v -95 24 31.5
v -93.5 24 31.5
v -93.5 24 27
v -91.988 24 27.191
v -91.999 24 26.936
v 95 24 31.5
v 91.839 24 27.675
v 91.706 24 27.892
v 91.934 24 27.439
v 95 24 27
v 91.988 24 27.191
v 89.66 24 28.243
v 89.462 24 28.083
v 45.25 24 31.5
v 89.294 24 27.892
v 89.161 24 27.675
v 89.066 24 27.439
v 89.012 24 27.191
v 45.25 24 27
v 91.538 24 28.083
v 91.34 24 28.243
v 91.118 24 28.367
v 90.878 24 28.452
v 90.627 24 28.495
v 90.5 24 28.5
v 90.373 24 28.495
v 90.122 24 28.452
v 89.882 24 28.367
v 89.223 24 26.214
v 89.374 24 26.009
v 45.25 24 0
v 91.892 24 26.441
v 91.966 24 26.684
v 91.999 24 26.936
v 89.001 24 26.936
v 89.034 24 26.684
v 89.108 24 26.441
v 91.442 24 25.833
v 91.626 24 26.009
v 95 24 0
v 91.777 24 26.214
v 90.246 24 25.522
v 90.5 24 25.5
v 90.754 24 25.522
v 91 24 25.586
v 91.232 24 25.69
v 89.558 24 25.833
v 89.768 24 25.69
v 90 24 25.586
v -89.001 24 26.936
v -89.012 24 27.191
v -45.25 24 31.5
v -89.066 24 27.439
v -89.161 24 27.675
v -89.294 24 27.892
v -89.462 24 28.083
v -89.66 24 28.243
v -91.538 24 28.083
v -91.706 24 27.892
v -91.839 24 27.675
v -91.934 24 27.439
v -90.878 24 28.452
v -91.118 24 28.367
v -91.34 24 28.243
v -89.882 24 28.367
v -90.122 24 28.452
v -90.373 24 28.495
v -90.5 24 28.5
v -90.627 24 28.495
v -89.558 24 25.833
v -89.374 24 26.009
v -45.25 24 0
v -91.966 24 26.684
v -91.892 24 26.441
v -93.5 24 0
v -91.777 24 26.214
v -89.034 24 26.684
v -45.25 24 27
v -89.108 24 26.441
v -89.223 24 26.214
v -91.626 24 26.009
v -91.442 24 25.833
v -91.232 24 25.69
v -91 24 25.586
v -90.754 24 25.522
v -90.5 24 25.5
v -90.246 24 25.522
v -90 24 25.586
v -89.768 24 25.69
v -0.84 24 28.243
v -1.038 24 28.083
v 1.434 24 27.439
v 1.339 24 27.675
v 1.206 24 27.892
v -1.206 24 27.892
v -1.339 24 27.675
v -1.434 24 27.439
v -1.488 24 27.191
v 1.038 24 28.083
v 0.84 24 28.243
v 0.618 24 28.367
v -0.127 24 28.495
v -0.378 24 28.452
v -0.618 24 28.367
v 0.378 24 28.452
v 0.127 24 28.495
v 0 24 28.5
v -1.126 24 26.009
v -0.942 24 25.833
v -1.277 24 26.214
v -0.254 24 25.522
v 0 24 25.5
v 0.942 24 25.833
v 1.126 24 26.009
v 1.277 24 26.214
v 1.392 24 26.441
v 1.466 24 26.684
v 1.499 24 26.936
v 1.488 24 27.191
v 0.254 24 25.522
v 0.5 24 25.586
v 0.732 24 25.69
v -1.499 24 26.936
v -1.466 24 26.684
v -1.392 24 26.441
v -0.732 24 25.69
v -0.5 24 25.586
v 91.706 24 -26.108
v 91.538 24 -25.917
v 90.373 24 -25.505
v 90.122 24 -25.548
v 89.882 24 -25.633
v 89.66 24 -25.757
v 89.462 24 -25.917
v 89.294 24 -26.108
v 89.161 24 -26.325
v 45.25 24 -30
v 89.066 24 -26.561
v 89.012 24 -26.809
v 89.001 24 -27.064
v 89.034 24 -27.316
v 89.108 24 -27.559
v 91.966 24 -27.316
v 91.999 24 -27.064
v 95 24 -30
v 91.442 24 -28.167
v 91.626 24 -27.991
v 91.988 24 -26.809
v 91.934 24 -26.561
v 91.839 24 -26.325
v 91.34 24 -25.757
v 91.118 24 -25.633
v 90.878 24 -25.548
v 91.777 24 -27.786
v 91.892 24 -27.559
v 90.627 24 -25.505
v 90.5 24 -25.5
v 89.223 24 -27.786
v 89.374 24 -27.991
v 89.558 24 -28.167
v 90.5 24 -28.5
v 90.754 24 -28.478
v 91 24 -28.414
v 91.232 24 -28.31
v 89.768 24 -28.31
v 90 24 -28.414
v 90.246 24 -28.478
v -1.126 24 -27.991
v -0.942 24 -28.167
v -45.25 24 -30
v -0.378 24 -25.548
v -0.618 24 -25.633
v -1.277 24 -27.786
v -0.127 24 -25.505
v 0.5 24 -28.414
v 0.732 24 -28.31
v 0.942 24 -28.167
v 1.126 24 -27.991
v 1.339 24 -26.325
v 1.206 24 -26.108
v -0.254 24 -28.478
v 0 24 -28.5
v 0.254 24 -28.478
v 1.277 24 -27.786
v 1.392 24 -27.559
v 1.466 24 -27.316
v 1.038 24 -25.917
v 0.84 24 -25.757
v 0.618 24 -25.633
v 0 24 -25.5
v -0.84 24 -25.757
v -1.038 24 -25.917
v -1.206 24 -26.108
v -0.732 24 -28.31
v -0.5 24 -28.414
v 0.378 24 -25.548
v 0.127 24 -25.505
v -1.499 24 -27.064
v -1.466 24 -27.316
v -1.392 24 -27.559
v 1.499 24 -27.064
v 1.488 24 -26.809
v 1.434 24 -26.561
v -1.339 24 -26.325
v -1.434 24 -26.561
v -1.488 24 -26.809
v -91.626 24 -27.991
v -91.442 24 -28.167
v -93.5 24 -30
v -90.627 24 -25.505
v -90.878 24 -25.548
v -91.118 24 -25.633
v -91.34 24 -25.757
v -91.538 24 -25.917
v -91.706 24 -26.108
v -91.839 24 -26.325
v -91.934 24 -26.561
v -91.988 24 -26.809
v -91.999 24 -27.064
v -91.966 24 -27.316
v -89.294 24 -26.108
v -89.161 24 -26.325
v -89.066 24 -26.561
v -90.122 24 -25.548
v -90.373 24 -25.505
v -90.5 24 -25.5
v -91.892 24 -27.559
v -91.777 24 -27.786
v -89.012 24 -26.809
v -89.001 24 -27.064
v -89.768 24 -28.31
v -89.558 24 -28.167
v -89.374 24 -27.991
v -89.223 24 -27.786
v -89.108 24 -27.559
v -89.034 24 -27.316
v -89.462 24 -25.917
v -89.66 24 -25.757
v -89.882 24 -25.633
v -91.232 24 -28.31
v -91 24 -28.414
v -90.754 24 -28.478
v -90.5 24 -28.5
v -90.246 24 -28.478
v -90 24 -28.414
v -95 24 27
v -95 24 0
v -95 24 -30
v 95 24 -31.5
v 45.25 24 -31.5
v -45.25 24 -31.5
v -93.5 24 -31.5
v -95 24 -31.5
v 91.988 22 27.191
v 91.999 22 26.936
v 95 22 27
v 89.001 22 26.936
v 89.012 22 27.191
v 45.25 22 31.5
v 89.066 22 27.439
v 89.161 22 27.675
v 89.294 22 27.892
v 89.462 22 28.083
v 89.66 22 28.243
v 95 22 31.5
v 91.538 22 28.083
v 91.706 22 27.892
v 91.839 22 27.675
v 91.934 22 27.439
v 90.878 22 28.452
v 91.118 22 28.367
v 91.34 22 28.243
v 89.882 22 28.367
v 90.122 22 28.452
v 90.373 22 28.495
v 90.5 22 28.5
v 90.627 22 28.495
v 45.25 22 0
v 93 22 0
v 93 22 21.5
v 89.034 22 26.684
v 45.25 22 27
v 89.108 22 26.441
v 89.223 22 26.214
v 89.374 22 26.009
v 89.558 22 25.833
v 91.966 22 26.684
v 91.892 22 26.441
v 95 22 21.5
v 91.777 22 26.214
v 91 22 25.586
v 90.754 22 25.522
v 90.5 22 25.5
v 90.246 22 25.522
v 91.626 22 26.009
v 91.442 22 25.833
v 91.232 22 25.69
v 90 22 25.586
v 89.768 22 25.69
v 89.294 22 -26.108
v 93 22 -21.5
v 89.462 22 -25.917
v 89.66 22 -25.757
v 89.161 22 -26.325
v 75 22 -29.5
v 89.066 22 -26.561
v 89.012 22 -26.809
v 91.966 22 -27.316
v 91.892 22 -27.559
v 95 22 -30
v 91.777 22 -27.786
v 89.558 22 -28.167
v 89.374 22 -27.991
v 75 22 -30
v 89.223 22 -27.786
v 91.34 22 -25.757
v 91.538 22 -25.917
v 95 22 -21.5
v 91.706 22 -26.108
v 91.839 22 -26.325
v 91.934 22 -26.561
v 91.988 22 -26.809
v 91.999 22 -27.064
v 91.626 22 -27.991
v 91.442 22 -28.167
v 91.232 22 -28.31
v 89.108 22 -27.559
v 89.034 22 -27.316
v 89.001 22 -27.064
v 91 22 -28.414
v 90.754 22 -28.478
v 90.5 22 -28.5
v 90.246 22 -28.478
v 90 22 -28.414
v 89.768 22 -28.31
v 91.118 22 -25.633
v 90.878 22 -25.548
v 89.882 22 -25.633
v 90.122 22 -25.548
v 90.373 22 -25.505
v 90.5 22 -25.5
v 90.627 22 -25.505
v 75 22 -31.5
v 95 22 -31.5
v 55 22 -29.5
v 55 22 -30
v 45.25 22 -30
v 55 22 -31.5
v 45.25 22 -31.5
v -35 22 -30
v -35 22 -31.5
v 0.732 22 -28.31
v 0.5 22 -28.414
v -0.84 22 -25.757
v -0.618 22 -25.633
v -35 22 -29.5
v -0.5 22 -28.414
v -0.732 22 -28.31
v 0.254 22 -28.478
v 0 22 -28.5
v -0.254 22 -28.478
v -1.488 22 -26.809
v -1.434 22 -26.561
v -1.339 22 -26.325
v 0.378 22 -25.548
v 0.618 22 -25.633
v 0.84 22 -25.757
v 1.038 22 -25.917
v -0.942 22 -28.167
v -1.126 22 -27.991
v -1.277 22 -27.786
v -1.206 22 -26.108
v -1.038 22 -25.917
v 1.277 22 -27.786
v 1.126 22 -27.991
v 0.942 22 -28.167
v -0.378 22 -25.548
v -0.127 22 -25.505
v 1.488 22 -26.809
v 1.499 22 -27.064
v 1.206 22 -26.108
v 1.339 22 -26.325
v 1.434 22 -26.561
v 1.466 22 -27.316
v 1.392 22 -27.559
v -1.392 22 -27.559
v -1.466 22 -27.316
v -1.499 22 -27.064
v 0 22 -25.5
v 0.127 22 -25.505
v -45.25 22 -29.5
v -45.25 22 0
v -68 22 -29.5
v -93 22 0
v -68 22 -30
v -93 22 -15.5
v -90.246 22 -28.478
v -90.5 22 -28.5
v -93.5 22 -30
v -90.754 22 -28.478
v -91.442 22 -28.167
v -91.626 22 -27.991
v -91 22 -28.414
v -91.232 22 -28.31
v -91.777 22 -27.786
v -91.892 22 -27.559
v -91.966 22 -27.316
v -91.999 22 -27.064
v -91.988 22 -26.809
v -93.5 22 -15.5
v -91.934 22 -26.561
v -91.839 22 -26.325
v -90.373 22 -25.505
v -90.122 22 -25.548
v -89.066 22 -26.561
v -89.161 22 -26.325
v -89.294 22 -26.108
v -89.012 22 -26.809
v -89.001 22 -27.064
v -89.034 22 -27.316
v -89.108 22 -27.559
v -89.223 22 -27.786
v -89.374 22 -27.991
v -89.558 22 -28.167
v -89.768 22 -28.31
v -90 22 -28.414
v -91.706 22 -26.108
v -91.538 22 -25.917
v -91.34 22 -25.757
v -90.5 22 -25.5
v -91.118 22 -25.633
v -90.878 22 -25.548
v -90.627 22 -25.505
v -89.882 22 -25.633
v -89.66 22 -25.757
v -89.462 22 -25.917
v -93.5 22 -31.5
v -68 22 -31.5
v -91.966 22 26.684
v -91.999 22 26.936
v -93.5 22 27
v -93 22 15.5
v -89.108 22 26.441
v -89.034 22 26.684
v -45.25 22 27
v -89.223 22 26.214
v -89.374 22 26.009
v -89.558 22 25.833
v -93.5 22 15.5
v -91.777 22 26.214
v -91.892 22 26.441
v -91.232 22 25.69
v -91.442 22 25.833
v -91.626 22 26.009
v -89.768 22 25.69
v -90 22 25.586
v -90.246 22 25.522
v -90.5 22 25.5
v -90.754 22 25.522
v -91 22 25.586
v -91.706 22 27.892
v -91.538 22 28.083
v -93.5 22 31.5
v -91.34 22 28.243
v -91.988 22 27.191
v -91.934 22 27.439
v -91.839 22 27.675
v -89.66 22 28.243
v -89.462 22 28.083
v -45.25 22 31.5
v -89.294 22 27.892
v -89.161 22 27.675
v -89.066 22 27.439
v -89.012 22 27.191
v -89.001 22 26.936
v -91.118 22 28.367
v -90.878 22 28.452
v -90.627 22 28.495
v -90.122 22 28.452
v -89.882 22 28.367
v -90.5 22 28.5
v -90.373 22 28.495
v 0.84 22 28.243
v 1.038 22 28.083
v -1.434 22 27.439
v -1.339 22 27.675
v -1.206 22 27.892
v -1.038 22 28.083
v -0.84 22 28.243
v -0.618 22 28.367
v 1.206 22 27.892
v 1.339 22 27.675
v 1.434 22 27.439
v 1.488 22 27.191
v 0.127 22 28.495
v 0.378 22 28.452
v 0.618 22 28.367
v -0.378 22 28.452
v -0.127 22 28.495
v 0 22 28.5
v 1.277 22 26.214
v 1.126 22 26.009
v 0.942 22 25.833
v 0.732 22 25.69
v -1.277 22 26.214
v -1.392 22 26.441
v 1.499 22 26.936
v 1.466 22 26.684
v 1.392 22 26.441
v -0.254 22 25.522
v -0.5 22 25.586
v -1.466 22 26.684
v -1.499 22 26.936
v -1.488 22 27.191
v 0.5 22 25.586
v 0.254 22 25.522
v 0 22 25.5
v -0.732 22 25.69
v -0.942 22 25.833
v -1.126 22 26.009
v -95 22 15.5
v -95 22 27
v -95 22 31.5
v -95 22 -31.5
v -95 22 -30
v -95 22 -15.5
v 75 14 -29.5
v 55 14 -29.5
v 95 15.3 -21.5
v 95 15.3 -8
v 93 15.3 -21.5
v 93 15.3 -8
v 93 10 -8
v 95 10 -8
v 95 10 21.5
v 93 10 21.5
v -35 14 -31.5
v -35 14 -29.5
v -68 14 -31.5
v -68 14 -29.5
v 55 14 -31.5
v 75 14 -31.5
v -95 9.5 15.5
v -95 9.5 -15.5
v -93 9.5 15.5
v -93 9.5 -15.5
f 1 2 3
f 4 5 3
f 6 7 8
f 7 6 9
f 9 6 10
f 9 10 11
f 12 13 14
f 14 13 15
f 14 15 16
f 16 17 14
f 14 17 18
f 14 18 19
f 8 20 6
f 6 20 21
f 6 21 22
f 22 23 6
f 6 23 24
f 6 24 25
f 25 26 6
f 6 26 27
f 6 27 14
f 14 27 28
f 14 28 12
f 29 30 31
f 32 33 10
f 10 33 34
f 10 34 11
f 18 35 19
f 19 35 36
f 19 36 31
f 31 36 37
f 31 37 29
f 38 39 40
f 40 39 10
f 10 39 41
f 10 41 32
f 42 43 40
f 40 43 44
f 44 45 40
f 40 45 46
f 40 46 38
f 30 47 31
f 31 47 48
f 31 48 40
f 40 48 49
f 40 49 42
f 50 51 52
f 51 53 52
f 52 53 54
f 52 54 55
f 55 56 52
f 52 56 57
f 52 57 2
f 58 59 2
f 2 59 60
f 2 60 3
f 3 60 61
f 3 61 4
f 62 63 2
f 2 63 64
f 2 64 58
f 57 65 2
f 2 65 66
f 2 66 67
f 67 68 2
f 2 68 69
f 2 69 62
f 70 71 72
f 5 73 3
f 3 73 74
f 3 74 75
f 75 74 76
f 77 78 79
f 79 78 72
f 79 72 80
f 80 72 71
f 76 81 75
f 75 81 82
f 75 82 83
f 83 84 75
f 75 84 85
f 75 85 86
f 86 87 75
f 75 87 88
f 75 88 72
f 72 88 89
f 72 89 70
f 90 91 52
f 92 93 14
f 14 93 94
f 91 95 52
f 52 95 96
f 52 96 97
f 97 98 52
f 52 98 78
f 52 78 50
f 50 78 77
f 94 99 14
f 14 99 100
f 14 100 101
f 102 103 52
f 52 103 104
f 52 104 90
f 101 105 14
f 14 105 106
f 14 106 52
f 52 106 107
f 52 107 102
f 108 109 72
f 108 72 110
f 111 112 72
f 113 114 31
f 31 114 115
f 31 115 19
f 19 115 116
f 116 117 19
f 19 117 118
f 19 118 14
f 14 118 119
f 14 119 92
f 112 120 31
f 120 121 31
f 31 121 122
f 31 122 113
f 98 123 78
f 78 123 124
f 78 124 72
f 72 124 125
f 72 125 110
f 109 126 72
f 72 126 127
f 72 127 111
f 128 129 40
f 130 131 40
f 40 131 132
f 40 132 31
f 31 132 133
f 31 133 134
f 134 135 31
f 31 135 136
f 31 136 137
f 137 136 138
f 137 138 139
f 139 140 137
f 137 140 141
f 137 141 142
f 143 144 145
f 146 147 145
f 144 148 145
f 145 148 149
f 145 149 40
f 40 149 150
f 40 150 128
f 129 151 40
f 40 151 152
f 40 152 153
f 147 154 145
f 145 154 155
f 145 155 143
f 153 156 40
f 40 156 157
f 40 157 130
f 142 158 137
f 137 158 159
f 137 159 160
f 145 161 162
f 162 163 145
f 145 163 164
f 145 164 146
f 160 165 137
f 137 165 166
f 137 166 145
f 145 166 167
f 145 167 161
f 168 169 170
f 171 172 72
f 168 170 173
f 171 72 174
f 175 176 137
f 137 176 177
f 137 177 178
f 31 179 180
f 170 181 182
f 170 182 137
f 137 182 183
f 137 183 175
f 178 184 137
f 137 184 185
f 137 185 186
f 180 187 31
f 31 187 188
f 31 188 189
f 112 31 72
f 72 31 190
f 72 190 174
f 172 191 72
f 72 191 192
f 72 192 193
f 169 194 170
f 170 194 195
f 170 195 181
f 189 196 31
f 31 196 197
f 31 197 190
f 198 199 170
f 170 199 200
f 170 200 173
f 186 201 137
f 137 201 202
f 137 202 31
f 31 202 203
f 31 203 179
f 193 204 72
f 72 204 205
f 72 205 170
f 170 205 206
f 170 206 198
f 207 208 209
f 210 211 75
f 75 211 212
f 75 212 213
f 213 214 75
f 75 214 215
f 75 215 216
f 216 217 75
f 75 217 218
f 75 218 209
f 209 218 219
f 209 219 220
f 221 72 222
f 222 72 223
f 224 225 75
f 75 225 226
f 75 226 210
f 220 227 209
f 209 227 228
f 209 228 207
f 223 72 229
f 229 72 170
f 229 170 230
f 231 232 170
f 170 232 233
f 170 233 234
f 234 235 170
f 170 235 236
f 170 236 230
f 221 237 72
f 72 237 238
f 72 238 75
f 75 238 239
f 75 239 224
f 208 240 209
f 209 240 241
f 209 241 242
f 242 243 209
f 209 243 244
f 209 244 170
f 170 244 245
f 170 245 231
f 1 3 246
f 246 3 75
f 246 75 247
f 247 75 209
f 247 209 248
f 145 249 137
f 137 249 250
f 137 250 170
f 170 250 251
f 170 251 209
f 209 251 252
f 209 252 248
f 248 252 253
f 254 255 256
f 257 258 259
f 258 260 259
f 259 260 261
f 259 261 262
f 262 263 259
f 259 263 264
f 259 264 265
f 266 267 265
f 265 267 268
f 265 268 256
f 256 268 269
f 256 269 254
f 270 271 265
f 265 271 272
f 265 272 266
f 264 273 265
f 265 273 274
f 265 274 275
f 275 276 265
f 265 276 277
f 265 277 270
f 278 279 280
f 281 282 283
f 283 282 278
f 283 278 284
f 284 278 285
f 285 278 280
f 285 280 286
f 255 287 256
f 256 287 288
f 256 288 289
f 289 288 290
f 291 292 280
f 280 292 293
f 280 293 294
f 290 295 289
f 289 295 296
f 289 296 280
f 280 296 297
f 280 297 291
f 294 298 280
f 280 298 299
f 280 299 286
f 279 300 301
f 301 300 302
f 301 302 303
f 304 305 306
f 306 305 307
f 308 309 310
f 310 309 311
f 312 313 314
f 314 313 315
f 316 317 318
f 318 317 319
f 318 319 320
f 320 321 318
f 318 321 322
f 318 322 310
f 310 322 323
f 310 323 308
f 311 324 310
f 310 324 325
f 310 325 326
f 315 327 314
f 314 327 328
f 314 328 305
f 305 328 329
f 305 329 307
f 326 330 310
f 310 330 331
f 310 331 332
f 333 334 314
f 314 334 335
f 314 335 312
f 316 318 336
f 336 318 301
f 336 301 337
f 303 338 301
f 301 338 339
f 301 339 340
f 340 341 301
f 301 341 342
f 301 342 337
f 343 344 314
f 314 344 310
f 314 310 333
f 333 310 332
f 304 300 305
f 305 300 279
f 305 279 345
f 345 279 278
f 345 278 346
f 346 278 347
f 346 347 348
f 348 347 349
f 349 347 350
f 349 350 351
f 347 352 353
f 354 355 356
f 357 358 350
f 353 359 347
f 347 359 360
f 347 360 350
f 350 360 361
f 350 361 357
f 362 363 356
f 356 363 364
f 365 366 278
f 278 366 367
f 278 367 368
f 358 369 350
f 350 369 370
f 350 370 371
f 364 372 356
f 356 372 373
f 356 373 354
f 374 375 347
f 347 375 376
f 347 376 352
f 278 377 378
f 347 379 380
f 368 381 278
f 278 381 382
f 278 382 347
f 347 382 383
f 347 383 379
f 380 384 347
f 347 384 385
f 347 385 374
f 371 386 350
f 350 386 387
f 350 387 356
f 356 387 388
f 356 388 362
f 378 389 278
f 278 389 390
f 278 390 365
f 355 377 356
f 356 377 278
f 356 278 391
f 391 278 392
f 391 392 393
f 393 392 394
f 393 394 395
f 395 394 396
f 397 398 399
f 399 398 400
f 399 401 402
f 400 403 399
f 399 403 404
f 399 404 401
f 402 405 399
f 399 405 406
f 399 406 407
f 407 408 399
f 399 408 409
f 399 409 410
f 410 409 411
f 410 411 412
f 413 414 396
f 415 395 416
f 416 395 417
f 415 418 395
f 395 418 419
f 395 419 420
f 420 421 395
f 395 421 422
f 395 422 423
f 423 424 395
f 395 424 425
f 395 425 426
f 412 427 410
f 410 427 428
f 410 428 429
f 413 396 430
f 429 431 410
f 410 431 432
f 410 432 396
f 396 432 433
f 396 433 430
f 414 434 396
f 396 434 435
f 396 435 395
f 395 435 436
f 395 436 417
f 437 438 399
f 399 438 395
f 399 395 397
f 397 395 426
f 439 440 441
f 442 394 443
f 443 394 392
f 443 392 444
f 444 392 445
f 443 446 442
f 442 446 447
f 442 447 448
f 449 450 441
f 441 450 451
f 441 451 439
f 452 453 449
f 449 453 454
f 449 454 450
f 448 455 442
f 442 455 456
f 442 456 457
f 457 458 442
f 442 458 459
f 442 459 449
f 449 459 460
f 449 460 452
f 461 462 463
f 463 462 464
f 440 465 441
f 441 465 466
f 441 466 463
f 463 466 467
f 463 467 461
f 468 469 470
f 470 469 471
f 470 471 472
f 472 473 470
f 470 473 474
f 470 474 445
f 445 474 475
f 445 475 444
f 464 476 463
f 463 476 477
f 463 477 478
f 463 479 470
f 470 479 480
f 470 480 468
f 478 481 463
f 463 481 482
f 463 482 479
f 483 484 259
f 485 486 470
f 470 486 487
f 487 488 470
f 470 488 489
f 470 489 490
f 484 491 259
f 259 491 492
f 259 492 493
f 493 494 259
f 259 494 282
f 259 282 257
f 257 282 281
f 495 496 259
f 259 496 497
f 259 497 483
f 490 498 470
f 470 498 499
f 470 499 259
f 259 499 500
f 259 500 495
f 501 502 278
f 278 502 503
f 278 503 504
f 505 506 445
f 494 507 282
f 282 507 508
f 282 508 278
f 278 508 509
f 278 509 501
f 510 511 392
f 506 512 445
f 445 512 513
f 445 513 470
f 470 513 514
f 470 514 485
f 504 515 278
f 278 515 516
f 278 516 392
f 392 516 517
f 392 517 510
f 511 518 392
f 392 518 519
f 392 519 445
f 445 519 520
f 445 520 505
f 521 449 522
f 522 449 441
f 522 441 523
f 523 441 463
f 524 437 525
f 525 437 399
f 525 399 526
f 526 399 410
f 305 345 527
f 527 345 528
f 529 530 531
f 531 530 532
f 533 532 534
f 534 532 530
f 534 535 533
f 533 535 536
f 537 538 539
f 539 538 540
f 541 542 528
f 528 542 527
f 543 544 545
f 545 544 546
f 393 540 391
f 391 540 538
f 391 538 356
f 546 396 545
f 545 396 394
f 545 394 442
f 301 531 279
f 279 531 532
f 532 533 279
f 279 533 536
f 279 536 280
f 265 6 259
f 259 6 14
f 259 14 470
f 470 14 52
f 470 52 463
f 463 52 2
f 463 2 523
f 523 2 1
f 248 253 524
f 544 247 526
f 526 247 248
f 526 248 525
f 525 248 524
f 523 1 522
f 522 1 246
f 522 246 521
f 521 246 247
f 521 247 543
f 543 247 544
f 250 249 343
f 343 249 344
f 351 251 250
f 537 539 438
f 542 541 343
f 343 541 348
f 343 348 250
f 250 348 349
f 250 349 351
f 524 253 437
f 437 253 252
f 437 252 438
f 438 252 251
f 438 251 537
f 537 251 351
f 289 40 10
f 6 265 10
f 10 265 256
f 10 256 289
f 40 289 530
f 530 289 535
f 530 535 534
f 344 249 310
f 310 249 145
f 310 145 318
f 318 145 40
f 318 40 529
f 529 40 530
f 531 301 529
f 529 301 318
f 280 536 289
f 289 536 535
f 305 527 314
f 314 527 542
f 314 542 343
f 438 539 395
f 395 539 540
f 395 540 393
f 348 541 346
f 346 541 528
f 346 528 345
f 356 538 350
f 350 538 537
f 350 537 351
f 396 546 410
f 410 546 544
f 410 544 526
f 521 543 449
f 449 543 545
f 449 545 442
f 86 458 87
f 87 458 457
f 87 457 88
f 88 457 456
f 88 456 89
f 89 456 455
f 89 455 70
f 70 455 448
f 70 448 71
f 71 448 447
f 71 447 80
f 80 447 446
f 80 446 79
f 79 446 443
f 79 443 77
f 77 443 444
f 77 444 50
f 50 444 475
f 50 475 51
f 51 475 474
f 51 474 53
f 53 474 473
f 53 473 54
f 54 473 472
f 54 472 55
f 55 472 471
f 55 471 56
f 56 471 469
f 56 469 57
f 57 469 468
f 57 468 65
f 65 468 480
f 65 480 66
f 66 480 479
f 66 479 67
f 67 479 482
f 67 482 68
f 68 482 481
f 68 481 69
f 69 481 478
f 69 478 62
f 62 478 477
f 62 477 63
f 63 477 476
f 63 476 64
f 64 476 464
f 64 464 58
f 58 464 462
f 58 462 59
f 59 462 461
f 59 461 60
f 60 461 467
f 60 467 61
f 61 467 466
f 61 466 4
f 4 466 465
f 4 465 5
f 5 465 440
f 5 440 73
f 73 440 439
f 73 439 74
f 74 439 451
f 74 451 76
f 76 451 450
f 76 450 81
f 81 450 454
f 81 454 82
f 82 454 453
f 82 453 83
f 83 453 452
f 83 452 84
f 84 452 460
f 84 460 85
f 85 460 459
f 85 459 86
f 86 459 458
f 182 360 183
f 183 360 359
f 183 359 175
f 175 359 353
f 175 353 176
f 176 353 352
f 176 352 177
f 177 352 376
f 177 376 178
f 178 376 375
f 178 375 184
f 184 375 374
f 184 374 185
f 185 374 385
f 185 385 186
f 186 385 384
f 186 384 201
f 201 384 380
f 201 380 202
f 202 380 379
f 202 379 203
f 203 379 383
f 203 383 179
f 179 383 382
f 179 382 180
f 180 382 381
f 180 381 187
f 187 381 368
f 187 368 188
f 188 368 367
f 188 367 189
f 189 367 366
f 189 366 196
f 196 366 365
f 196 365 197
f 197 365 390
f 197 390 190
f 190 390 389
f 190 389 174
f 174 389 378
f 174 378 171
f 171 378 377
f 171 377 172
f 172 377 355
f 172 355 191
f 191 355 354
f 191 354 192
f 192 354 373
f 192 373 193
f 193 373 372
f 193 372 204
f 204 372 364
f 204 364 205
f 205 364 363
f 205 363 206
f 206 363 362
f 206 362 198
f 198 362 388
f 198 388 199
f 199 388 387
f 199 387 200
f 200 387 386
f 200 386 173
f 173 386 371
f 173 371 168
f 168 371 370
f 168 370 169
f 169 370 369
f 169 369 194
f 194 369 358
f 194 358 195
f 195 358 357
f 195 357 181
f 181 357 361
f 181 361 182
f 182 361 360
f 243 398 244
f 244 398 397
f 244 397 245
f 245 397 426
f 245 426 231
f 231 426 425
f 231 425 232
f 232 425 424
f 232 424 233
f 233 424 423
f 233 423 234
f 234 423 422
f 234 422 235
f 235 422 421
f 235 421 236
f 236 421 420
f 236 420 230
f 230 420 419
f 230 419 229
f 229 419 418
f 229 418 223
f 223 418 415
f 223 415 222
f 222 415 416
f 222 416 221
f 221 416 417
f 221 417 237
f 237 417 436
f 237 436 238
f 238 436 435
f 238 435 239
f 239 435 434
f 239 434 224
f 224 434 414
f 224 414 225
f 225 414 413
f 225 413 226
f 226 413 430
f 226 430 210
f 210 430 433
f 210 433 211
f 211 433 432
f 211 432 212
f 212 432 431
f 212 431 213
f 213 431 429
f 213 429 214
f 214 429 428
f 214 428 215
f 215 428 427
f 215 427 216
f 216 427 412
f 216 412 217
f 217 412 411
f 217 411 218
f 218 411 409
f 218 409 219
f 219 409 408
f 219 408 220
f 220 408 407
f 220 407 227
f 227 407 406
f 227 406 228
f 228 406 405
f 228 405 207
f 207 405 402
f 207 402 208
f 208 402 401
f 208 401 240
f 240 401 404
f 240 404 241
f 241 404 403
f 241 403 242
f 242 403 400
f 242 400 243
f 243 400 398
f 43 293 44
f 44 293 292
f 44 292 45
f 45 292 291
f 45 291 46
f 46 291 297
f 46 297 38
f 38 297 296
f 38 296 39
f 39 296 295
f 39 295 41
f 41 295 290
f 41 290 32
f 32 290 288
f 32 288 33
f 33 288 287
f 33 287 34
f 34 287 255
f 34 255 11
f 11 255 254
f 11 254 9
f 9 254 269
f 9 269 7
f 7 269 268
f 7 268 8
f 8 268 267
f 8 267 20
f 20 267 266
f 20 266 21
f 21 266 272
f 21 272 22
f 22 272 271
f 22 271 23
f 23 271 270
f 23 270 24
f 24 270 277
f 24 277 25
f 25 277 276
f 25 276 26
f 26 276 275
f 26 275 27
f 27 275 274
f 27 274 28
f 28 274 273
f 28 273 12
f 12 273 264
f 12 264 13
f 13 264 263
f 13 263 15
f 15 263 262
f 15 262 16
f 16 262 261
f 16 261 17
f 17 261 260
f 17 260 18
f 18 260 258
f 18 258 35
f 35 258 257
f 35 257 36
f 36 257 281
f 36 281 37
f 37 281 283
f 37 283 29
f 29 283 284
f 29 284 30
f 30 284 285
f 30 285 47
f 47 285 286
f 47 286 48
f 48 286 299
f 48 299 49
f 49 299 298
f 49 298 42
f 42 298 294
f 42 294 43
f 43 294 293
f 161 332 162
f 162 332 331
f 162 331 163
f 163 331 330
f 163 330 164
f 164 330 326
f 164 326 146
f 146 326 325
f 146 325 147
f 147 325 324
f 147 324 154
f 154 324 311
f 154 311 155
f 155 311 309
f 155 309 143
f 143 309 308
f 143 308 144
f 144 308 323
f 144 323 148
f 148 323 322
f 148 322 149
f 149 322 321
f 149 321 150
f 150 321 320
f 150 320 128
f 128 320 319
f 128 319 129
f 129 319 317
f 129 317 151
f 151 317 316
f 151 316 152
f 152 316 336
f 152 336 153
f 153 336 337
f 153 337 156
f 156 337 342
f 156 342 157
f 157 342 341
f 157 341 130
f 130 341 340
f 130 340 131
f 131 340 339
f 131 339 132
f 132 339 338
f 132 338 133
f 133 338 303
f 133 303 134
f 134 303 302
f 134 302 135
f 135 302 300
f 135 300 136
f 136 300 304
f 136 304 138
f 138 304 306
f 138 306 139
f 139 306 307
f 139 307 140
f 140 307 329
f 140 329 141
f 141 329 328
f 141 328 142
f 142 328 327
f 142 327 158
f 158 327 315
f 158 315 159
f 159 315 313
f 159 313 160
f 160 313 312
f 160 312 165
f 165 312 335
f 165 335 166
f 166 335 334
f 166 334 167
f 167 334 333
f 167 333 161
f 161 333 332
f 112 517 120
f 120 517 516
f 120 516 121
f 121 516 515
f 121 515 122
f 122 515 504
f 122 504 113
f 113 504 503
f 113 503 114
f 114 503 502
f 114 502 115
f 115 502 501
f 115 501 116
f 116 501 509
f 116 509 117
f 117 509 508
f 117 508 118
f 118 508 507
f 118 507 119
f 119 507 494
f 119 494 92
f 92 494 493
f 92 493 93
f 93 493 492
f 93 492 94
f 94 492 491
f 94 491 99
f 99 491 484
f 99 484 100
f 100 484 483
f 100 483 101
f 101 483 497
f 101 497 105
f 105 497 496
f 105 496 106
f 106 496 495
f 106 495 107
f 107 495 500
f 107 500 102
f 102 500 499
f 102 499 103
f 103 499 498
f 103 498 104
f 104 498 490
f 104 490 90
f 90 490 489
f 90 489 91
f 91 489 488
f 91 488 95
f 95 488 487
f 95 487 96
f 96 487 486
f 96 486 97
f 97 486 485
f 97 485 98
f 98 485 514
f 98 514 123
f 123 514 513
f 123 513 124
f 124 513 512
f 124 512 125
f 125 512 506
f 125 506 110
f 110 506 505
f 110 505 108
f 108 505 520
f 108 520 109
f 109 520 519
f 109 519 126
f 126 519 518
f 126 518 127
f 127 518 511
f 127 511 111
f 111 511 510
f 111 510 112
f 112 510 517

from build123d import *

# Parameters (mm, degrees)
BOSS_EXTRUDE1_DEPTH   = 2
SKETCH1_4_R           = 1.5
BOSS_EXTRUDE2_DEPTH   = 19
BOSS_EXTRUDE2_2_DEPTH = 19
BOSS_EXTRUDE2_3_DEPTH = 19
BOSS_EXTRUDE2_4_DEPTH = 19
BOSS_EXTRUDE2_5_DEPTH = 19
BOSS_EXTRUDE2_6_DEPTH = 19
SKETCH1_5_R           = 1.5
BOSS_EXTRUDE3_DEPTH   = 20
BOSS_EXTRUDE4_DEPTH   = 22
SKETCH2_W             = 23
SKETCH2_H             = 8
SKETCH2_W_2           = 13.5
SKETCH2_H_2           = 13.3
CUT_EXTRUDE1_DEPTH    = 3
SKETCH3_W             = 20
SKETCH3_H             = 12
SKETCH3_W_2           = 33
CUT_EXTRUDE2_DEPTH    = 3
SKETCH4_W             = 12
SKETCH4_H             = 7.5
CUT_EXTRUDE3_DEPTH    = 3
SKETCH10_W            = 190
SKETCH10_H            = 63
BOSS_EXTRUDE5_DEPTH   = 2
SKETCH10_3_W          = 186
SKETCH10_3_H          = 59
CUT_EXTRUDE7_DEPTH    = 22
CUT_EXTRUDE8_DEPTH    = 2
CUT_EXTRUDE9_DEPTH    = 2
CUT_EXTRUDE10_DEPTH   = 2
SKETCH9_W             = 190
SKETCH9_H             = 22
CUT_EXTRUDE11_DEPTH   = 2
SKETCH1_7_R           = 1.5
CUT_EXTRUDE12_DEPTH   = 24


with BuildPart() as part:
    # Sketch1 → Boss-Extrude1 (new body)
    with BuildSketch(Plane(origin=(0, 0, 0), x_dir=(1, 0, 0), z_dir=(0, 1, 0))):
        with BuildLine():
            Line((-90.5, 22.5), (-93, 22.5))
            Line((-93, 22.5), (-93, -22.5))
            Line((-93, -22.5), (-90.5, -22.5))
            ThreePointArc((-90.5, -22.5), (-87.318019485, -23.818019485), (-86, -27))
            Line((-86, -27), (-86, -29.5))
            Line((-86, -29.5), (-4.5, -29.5))
            Line((-4.5, -29.5), (-4.5, -27))
            ThreePointArc((-4.5, -27), (0, -22.5), (4.5, -27))
            Line((4.5, -27), (4.5, -29.5))
            Line((4.5, -29.5), (86, -29.5))
            Line((86, -29.5), (86, -27))
            ThreePointArc((86, -27), (87.318019485, -23.818019485), (90.5, -22.5))
            Line((90.5, -22.5), (93, -22.5))
            Line((93, -22.5), (93, 22.5))
            Line((93, 22.5), (90.5, 22.5))
            ThreePointArc((90.5, 22.5), (87.318019485, 23.818019485), (86, 27))
            Line((86, 27), (86, 29.5))
            Line((86, 29.5), (4.5, 29.5))
            Line((4.5, 29.5), (4.5, 27))
            ThreePointArc((4.5, 27), (0, 22.5), (-4.5, 27))
            Line((-4.5, 27), (-4.5, 29.5))
            Line((-4.5, 29.5), (-86, 29.5))
            Line((-86, 29.5), (-86, 27))
            ThreePointArc((-86, 27), (-87.318019485, 23.818019485), (-90.5, 22.5))
        make_face()
    extrude(amount=BOSS_EXTRUDE1_DEPTH)



with BuildPart() as body_2:
    # Sketch1<4> → Boss-Extrude2 (new body)
    with BuildSketch(Plane(origin=(0, 0, 0), x_dir=(1, 0, 0), z_dir=(0, 1, 0))):
        with Locations((-90.5, 27)):
            Circle(SKETCH1_4_R)
    extrude(amount=BOSS_EXTRUDE2_DEPTH)



with BuildPart() as body_3:
    # Sketch1<4> → Boss-Extrude2 2 (new body)
    with BuildSketch(Plane(origin=(0, 0, 0), x_dir=(1, 0, 0), z_dir=(0, 1, 0))):
        with Locations((90.5, 27)):
            Circle(SKETCH1_4_R)
    extrude(amount=BOSS_EXTRUDE2_2_DEPTH)


with BuildPart() as body_4:
    # Sketch1<4> → Boss-Extrude2 3 (new body)
    with BuildSketch(Plane(origin=(0, 0, 0), x_dir=(1, 0, 0), z_dir=(0, 1, 0))):
        with Locations((90.5, -27)):
            Circle(SKETCH1_4_R)
    extrude(amount=BOSS_EXTRUDE2_3_DEPTH)


with BuildPart() as body_5:
    # Sketch1<4> → Boss-Extrude2 4 (new body)
    with BuildSketch(Plane(origin=(0, 0, 0), x_dir=(1, 0, 0), z_dir=(0, 1, 0))):
        with Locations((-90.5, -27)):
            Circle(SKETCH1_4_R)
    extrude(amount=BOSS_EXTRUDE2_4_DEPTH)


with BuildPart() as body_6:
    # Sketch1<4> → Boss-Extrude2 5 (new body)
    with BuildSketch(Plane(origin=(0, 0, 0), x_dir=(1, 0, 0), z_dir=(0, 1, 0))):
        with Locations((0, 27)):
            Circle(SKETCH1_4_R)
    extrude(amount=BOSS_EXTRUDE2_5_DEPTH)


with BuildPart() as body_7:
    # Sketch1<4> → Boss-Extrude2 6 (new body)
    with BuildSketch(Plane(origin=(0, 0, 0), x_dir=(1, 0, 0), z_dir=(0, 1, 0))):
        with Locations((0, -27)):
            Circle(SKETCH1_4_R)
    extrude(amount=BOSS_EXTRUDE2_6_DEPTH)


with BuildPart() as body_2_1:
    add(body_2.part)

    add(body_3.part)  # Boss-Extrude3 merges body 3

    add(body_4.part)  # Boss-Extrude3 merges body 4

    add(body_5.part)  # Boss-Extrude3 merges body 5

    add(body_6.part)  # Boss-Extrude3 merges body 6

    add(body_7.part)  # Boss-Extrude3 merges body 7
    # Sketch1<5> → Boss-Extrude3 (add)
    # profile 1 of 6: a face of its own
    with BuildSketch(Plane(origin=(0, 0, 0), x_dir=(1, 0, 0), z_dir=(0, 1, 0))):
        Polygon((93.5, 27), (92, 29.598076211), (89, 29.598076211), (87.5, 27), (89, 24.401923789), (92, 24.401923789), align=None)
        with Locations((90.5, 27)):
            Circle(SKETCH1_5_R, mode=Mode.SUBTRACT)
    # profile 2 of 6: a face of its own
    with BuildSketch(Plane(origin=(0, 0, 0), x_dir=(1, 0, 0), z_dir=(0, 1, 0))):
        Polygon((-92, 29.598076211), (-93.5, 27), (-92, 24.401923789), (-89, 24.401923789), (-87.5, 27), (-89, 29.598076211), align=None)
        with Locations((-90.5, 27)):
            Circle(SKETCH1_5_R, mode=Mode.SUBTRACT)
    # profile 3 of 6: a face of its own
    with BuildSketch(Plane(origin=(0, 0, 0), x_dir=(1, 0, 0), z_dir=(0, 1, 0))):
        Polygon((87.5, -27), (89, -29.598076211), (92, -29.598076211), (93.5, -27), (92, -24.401923789), (89, -24.401923789), align=None)
        with Locations((90.5, -27)):
            Circle(SKETCH1_5_R, mode=Mode.SUBTRACT)
    # profile 4 of 6: a face of its own
    with BuildSketch(Plane(origin=(0, 0, 0), x_dir=(1, 0, 0), z_dir=(0, 1, 0))):
        Polygon((-93.5, -27), (-92, -29.598076211), (-89, -29.598076211), (-87.5, -27), (-89, -24.401923789), (-92, -24.401923789), align=None)
        with Locations((-90.5, -27)):
            Circle(SKETCH1_5_R, mode=Mode.SUBTRACT)
    # profile 5 of 6: a face of its own
    with BuildSketch(Plane(origin=(0, 0, 0), x_dir=(1, 0, 0), z_dir=(0, 1, 0))):
        Polygon((3, -27), (1.5, -24.401923789), (-1.5, -24.401923789), (-3, -27), (-1.5, -29.598076211), (1.5, -29.598076211), align=None)
        with Locations((0, -27)):
            Circle(SKETCH1_5_R, mode=Mode.SUBTRACT)
    # profile 6 of 6: a face of its own
    with BuildSketch(Plane(origin=(0, 0, 0), x_dir=(1, 0, 0), z_dir=(0, 1, 0))):
        Polygon((1.5, 24.401923789), (3, 27), (1.5, 29.598076211), (-1.5, 29.598076211), (-3, 27), (-1.5, 24.401923789), align=None)
        with Locations((0, 27)):
            Circle(SKETCH1_5_R, mode=Mode.SUBTRACT)
    extrude(amount=BOSS_EXTRUDE3_DEPTH)


with BuildPart() as part_1:
    add(part.part)

    add(body_2_1.part)  # Boss-Extrude4 merges body 2
    # Sketch1<6> → Boss-Extrude4 (add)
    with BuildSketch(Plane(origin=(0, 0, 0), x_dir=(1, 0, 0), z_dir=(0, 1, 0))):
        Polygon((-95, -22.5), (-95, -31.5), (-86, -31.5), (86, -31.5), (95, -31.5), (95, -22.5), (95, 22.5), (95, 31.5), (86, 31.5), (4.5, 31.5), (-4.5, 31.5), (-86, 31.5), (-95, 31.5), (-95, 22.5), align=None)
        Polygon((-89, -29.598076211), (-92, -29.598076211), (-93.5, -27), (-92, -24.401923789), (-89, -24.401923789), (-87.5, -27), align=None, mode=Mode.SUBTRACT)
        Polygon((-1.5, -24.401923789), (1.5, -24.401923789), (3, -27), (1.5, -29.598076211), (-1.5, -29.598076211), (-3, -27), align=None, mode=Mode.SUBTRACT)
        Polygon((92, -29.598076211), (89, -29.598076211), (87.5, -27), (89, -24.401923789), (92, -24.401923789), (93.5, -27), align=None, mode=Mode.SUBTRACT)
        Polygon((-92, 24.401923789), (-93.5, 27), (-92, 29.598076211), (-89, 29.598076211), (-87.5, 27), (-89, 24.401923789), align=None, mode=Mode.SUBTRACT)
        Polygon((1.5, 29.598076211), (3, 27), (1.5, 24.401923789), (-1.5, 24.401923789), (-3, 27), (-1.5, 29.598076211), align=None, mode=Mode.SUBTRACT)
        with BuildLine():
            Line((-93, -22.5), (-93, 22.5))
            Line((-93, 22.5), (-90.5, 22.5))
            ThreePointArc((-90.5, 22.5), (-87.318019485, 23.818019485), (-86, 27))
            Line((-86, 27), (-86, 29.5))
            Line((-86, 29.5), (-4.5, 29.5))
            Line((-4.5, 29.5), (-4.5, 27))
            ThreePointArc((-4.5, 27), (0, 22.5), (4.5, 27))
            Line((4.5, 27), (4.5, 29.5))
            Line((4.5, 29.5), (86, 29.5))
            Line((86, 29.5), (86, 27))
            ThreePointArc((86, 27), (87.318019485, 23.818019485), (90.5, 22.5))
            Line((90.5, 22.5), (93, 22.5))
            Line((93, 22.5), (93, -22.5))
            Line((93, -22.5), (90.5, -22.5))
            ThreePointArc((90.5, -22.5), (87.318019485, -23.818019485), (86, -27))
            Line((86, -27), (86, -29.5))
            Line((86, -29.5), (4.5, -29.5))
            Line((4.5, -29.5), (4.5, -27))
            ThreePointArc((4.5, -27), (0, -22.5), (-4.5, -27))
            Line((-4.5, -27), (-4.5, -29.5))
            Line((-4.5, -29.5), (-86, -29.5))
            Line((-86, -29.5), (-86, -27))
            ThreePointArc((-86, -27), (-87.318019485, -23.818019485), (-90.5, -22.5))
            Line((-90.5, -22.5), (-93, -22.5))
        make_face(mode=Mode.SUBTRACT)
        Polygon((89, 29.598076211), (92, 29.598076211), (93.5, 27), (92, 24.401923789), (89, 24.401923789), (87.5, 27), align=None, mode=Mode.SUBTRACT)
    extrude(amount=BOSS_EXTRUDE4_DEPTH)

    # Sketch2 → Cut-Extrude1 (cut)
    with BuildSketch(Plane(origin=(95, 0, 0), x_dir=(0, 0, -1), z_dir=(1, 0, 0))):
        with Locations((-10, 6)):
            Rectangle(SKETCH2_W, SKETCH2_H)
        with Locations((14.75, 8.65)):
            Rectangle(SKETCH2_W_2, SKETCH2_H_2)
    extrude(amount=-CUT_EXTRUDE1_DEPTH, mode=Mode.SUBTRACT)

    # Sketch3 → Cut-Extrude2 (cut)
    with BuildSketch(Plane(origin=(0, 0, -31.5), x_dir=(-1, 0, 0), z_dir=(0, 0, -1))):
        with Locations((-65, 8)):
            Rectangle(SKETCH3_W, SKETCH3_H)
        with Locations((51.5, 8)):
            Rectangle(SKETCH3_W_2, SKETCH3_H)
    extrude(amount=-CUT_EXTRUDE2_DEPTH, mode=Mode.SUBTRACT)

    # Sketch4 → Cut-Extrude3 (cut)
    with BuildSketch(Plane.ZY.offset(95)):
        with Locations((-9.5, 5.75)):
            Rectangle(SKETCH4_W, SKETCH4_H)
        with Locations((9.5, 5.75)):
            Rectangle(SKETCH4_W, SKETCH4_H)
    extrude(amount=-CUT_EXTRUDE3_DEPTH, mode=Mode.SUBTRACT)

    # Sketch10 → Boss-Extrude5 (add)
    with BuildSketch(Plane(origin=(0, 22, 0), x_dir=(1, 0, 0), z_dir=(0, 1, 0))):
        Rectangle(SKETCH10_W, SKETCH10_H)
    extrude(amount=BOSS_EXTRUDE5_DEPTH)

    # Sketch10<3> → Cut-Extrude7 (cut)
    with BuildSketch(Plane(origin=(0, 22, 0), x_dir=(1, 0, 0), z_dir=(0, 1, 0))):
        Rectangle(SKETCH10_3_W, SKETCH10_3_H)
    extrude(amount=-CUT_EXTRUDE7_DEPTH, mode=Mode.SUBTRACT)

    # Sketch5 → Cut-Extrude8 (cut)
    with BuildSketch(Plane(origin=(95, 0, 0), x_dir=(0, 0, -1), z_dir=(1, 0, 0))):
        Polygon((-21.5, 10), (-21.5, 22), (-31.5, 22), (-31.5, 0), (31.5, 0), (31.5, 22), (21.5, 22), (21.5, 15.3), (8, 15.3), (8, 10), align=None)
    extrude(amount=-CUT_EXTRUDE8_DEPTH, mode=Mode.SUBTRACT)

    # Sketch6 → Cut-Extrude9 (cut)
    with BuildSketch(Plane(origin=(0, 0, -31.5), x_dir=(-1, 0, 0), z_dir=(0, 0, -1))):
        Polygon((-75, 22), (-75, 14), (-55, 14), (-55, 22), (35, 22), (35, 14), (68, 14), (68, 22), (95, 22), (95, 0), (-95, 0), (-95, 22), align=None)
    extrude(amount=-CUT_EXTRUDE9_DEPTH, mode=Mode.SUBTRACT)

    # Sketch7 → Cut-Extrude10 (cut)
    with BuildSketch(Plane.ZY.offset(95)):
        Polygon((-15.5, 9.5), (-15.5, 22), (-31.5, 22), (-31.5, 0), (31.5, 0), (31.5, 22), (15.5, 22), (15.5, 9.5), align=None)
    extrude(amount=-CUT_EXTRUDE10_DEPTH, mode=Mode.SUBTRACT)

    # Sketch9 → Cut-Extrude11 (cut)
    with BuildSketch(Plane.XY.offset(31.5)):
        with Locations((0, 11)):
            Rectangle(SKETCH9_W, SKETCH9_H)
    extrude(amount=-CUT_EXTRUDE11_DEPTH, mode=Mode.SUBTRACT)

    # Sketch1<7> → Cut-Extrude12 (cut)
    with BuildSketch(Plane(origin=(0, 0, 0), x_dir=(1, 0, 0), z_dir=(0, 1, 0))):
        with Locations((-90.5, 27)):
            Circle(SKETCH1_7_R)
        with Locations((90.5, 27)):
            Circle(SKETCH1_7_R)
        with Locations((90.5, -27)):
            Circle(SKETCH1_7_R)
        with Locations((-90.5, -27)):
            Circle(SKETCH1_7_R)
        with Locations((0, 27)):
            Circle(SKETCH1_7_R)
        with Locations((0, -27)):
            Circle(SKETCH1_7_R)
    extrude(amount=CUT_EXTRUDE12_DEPTH, mode=Mode.SUBTRACT)


solid = part_1.part
